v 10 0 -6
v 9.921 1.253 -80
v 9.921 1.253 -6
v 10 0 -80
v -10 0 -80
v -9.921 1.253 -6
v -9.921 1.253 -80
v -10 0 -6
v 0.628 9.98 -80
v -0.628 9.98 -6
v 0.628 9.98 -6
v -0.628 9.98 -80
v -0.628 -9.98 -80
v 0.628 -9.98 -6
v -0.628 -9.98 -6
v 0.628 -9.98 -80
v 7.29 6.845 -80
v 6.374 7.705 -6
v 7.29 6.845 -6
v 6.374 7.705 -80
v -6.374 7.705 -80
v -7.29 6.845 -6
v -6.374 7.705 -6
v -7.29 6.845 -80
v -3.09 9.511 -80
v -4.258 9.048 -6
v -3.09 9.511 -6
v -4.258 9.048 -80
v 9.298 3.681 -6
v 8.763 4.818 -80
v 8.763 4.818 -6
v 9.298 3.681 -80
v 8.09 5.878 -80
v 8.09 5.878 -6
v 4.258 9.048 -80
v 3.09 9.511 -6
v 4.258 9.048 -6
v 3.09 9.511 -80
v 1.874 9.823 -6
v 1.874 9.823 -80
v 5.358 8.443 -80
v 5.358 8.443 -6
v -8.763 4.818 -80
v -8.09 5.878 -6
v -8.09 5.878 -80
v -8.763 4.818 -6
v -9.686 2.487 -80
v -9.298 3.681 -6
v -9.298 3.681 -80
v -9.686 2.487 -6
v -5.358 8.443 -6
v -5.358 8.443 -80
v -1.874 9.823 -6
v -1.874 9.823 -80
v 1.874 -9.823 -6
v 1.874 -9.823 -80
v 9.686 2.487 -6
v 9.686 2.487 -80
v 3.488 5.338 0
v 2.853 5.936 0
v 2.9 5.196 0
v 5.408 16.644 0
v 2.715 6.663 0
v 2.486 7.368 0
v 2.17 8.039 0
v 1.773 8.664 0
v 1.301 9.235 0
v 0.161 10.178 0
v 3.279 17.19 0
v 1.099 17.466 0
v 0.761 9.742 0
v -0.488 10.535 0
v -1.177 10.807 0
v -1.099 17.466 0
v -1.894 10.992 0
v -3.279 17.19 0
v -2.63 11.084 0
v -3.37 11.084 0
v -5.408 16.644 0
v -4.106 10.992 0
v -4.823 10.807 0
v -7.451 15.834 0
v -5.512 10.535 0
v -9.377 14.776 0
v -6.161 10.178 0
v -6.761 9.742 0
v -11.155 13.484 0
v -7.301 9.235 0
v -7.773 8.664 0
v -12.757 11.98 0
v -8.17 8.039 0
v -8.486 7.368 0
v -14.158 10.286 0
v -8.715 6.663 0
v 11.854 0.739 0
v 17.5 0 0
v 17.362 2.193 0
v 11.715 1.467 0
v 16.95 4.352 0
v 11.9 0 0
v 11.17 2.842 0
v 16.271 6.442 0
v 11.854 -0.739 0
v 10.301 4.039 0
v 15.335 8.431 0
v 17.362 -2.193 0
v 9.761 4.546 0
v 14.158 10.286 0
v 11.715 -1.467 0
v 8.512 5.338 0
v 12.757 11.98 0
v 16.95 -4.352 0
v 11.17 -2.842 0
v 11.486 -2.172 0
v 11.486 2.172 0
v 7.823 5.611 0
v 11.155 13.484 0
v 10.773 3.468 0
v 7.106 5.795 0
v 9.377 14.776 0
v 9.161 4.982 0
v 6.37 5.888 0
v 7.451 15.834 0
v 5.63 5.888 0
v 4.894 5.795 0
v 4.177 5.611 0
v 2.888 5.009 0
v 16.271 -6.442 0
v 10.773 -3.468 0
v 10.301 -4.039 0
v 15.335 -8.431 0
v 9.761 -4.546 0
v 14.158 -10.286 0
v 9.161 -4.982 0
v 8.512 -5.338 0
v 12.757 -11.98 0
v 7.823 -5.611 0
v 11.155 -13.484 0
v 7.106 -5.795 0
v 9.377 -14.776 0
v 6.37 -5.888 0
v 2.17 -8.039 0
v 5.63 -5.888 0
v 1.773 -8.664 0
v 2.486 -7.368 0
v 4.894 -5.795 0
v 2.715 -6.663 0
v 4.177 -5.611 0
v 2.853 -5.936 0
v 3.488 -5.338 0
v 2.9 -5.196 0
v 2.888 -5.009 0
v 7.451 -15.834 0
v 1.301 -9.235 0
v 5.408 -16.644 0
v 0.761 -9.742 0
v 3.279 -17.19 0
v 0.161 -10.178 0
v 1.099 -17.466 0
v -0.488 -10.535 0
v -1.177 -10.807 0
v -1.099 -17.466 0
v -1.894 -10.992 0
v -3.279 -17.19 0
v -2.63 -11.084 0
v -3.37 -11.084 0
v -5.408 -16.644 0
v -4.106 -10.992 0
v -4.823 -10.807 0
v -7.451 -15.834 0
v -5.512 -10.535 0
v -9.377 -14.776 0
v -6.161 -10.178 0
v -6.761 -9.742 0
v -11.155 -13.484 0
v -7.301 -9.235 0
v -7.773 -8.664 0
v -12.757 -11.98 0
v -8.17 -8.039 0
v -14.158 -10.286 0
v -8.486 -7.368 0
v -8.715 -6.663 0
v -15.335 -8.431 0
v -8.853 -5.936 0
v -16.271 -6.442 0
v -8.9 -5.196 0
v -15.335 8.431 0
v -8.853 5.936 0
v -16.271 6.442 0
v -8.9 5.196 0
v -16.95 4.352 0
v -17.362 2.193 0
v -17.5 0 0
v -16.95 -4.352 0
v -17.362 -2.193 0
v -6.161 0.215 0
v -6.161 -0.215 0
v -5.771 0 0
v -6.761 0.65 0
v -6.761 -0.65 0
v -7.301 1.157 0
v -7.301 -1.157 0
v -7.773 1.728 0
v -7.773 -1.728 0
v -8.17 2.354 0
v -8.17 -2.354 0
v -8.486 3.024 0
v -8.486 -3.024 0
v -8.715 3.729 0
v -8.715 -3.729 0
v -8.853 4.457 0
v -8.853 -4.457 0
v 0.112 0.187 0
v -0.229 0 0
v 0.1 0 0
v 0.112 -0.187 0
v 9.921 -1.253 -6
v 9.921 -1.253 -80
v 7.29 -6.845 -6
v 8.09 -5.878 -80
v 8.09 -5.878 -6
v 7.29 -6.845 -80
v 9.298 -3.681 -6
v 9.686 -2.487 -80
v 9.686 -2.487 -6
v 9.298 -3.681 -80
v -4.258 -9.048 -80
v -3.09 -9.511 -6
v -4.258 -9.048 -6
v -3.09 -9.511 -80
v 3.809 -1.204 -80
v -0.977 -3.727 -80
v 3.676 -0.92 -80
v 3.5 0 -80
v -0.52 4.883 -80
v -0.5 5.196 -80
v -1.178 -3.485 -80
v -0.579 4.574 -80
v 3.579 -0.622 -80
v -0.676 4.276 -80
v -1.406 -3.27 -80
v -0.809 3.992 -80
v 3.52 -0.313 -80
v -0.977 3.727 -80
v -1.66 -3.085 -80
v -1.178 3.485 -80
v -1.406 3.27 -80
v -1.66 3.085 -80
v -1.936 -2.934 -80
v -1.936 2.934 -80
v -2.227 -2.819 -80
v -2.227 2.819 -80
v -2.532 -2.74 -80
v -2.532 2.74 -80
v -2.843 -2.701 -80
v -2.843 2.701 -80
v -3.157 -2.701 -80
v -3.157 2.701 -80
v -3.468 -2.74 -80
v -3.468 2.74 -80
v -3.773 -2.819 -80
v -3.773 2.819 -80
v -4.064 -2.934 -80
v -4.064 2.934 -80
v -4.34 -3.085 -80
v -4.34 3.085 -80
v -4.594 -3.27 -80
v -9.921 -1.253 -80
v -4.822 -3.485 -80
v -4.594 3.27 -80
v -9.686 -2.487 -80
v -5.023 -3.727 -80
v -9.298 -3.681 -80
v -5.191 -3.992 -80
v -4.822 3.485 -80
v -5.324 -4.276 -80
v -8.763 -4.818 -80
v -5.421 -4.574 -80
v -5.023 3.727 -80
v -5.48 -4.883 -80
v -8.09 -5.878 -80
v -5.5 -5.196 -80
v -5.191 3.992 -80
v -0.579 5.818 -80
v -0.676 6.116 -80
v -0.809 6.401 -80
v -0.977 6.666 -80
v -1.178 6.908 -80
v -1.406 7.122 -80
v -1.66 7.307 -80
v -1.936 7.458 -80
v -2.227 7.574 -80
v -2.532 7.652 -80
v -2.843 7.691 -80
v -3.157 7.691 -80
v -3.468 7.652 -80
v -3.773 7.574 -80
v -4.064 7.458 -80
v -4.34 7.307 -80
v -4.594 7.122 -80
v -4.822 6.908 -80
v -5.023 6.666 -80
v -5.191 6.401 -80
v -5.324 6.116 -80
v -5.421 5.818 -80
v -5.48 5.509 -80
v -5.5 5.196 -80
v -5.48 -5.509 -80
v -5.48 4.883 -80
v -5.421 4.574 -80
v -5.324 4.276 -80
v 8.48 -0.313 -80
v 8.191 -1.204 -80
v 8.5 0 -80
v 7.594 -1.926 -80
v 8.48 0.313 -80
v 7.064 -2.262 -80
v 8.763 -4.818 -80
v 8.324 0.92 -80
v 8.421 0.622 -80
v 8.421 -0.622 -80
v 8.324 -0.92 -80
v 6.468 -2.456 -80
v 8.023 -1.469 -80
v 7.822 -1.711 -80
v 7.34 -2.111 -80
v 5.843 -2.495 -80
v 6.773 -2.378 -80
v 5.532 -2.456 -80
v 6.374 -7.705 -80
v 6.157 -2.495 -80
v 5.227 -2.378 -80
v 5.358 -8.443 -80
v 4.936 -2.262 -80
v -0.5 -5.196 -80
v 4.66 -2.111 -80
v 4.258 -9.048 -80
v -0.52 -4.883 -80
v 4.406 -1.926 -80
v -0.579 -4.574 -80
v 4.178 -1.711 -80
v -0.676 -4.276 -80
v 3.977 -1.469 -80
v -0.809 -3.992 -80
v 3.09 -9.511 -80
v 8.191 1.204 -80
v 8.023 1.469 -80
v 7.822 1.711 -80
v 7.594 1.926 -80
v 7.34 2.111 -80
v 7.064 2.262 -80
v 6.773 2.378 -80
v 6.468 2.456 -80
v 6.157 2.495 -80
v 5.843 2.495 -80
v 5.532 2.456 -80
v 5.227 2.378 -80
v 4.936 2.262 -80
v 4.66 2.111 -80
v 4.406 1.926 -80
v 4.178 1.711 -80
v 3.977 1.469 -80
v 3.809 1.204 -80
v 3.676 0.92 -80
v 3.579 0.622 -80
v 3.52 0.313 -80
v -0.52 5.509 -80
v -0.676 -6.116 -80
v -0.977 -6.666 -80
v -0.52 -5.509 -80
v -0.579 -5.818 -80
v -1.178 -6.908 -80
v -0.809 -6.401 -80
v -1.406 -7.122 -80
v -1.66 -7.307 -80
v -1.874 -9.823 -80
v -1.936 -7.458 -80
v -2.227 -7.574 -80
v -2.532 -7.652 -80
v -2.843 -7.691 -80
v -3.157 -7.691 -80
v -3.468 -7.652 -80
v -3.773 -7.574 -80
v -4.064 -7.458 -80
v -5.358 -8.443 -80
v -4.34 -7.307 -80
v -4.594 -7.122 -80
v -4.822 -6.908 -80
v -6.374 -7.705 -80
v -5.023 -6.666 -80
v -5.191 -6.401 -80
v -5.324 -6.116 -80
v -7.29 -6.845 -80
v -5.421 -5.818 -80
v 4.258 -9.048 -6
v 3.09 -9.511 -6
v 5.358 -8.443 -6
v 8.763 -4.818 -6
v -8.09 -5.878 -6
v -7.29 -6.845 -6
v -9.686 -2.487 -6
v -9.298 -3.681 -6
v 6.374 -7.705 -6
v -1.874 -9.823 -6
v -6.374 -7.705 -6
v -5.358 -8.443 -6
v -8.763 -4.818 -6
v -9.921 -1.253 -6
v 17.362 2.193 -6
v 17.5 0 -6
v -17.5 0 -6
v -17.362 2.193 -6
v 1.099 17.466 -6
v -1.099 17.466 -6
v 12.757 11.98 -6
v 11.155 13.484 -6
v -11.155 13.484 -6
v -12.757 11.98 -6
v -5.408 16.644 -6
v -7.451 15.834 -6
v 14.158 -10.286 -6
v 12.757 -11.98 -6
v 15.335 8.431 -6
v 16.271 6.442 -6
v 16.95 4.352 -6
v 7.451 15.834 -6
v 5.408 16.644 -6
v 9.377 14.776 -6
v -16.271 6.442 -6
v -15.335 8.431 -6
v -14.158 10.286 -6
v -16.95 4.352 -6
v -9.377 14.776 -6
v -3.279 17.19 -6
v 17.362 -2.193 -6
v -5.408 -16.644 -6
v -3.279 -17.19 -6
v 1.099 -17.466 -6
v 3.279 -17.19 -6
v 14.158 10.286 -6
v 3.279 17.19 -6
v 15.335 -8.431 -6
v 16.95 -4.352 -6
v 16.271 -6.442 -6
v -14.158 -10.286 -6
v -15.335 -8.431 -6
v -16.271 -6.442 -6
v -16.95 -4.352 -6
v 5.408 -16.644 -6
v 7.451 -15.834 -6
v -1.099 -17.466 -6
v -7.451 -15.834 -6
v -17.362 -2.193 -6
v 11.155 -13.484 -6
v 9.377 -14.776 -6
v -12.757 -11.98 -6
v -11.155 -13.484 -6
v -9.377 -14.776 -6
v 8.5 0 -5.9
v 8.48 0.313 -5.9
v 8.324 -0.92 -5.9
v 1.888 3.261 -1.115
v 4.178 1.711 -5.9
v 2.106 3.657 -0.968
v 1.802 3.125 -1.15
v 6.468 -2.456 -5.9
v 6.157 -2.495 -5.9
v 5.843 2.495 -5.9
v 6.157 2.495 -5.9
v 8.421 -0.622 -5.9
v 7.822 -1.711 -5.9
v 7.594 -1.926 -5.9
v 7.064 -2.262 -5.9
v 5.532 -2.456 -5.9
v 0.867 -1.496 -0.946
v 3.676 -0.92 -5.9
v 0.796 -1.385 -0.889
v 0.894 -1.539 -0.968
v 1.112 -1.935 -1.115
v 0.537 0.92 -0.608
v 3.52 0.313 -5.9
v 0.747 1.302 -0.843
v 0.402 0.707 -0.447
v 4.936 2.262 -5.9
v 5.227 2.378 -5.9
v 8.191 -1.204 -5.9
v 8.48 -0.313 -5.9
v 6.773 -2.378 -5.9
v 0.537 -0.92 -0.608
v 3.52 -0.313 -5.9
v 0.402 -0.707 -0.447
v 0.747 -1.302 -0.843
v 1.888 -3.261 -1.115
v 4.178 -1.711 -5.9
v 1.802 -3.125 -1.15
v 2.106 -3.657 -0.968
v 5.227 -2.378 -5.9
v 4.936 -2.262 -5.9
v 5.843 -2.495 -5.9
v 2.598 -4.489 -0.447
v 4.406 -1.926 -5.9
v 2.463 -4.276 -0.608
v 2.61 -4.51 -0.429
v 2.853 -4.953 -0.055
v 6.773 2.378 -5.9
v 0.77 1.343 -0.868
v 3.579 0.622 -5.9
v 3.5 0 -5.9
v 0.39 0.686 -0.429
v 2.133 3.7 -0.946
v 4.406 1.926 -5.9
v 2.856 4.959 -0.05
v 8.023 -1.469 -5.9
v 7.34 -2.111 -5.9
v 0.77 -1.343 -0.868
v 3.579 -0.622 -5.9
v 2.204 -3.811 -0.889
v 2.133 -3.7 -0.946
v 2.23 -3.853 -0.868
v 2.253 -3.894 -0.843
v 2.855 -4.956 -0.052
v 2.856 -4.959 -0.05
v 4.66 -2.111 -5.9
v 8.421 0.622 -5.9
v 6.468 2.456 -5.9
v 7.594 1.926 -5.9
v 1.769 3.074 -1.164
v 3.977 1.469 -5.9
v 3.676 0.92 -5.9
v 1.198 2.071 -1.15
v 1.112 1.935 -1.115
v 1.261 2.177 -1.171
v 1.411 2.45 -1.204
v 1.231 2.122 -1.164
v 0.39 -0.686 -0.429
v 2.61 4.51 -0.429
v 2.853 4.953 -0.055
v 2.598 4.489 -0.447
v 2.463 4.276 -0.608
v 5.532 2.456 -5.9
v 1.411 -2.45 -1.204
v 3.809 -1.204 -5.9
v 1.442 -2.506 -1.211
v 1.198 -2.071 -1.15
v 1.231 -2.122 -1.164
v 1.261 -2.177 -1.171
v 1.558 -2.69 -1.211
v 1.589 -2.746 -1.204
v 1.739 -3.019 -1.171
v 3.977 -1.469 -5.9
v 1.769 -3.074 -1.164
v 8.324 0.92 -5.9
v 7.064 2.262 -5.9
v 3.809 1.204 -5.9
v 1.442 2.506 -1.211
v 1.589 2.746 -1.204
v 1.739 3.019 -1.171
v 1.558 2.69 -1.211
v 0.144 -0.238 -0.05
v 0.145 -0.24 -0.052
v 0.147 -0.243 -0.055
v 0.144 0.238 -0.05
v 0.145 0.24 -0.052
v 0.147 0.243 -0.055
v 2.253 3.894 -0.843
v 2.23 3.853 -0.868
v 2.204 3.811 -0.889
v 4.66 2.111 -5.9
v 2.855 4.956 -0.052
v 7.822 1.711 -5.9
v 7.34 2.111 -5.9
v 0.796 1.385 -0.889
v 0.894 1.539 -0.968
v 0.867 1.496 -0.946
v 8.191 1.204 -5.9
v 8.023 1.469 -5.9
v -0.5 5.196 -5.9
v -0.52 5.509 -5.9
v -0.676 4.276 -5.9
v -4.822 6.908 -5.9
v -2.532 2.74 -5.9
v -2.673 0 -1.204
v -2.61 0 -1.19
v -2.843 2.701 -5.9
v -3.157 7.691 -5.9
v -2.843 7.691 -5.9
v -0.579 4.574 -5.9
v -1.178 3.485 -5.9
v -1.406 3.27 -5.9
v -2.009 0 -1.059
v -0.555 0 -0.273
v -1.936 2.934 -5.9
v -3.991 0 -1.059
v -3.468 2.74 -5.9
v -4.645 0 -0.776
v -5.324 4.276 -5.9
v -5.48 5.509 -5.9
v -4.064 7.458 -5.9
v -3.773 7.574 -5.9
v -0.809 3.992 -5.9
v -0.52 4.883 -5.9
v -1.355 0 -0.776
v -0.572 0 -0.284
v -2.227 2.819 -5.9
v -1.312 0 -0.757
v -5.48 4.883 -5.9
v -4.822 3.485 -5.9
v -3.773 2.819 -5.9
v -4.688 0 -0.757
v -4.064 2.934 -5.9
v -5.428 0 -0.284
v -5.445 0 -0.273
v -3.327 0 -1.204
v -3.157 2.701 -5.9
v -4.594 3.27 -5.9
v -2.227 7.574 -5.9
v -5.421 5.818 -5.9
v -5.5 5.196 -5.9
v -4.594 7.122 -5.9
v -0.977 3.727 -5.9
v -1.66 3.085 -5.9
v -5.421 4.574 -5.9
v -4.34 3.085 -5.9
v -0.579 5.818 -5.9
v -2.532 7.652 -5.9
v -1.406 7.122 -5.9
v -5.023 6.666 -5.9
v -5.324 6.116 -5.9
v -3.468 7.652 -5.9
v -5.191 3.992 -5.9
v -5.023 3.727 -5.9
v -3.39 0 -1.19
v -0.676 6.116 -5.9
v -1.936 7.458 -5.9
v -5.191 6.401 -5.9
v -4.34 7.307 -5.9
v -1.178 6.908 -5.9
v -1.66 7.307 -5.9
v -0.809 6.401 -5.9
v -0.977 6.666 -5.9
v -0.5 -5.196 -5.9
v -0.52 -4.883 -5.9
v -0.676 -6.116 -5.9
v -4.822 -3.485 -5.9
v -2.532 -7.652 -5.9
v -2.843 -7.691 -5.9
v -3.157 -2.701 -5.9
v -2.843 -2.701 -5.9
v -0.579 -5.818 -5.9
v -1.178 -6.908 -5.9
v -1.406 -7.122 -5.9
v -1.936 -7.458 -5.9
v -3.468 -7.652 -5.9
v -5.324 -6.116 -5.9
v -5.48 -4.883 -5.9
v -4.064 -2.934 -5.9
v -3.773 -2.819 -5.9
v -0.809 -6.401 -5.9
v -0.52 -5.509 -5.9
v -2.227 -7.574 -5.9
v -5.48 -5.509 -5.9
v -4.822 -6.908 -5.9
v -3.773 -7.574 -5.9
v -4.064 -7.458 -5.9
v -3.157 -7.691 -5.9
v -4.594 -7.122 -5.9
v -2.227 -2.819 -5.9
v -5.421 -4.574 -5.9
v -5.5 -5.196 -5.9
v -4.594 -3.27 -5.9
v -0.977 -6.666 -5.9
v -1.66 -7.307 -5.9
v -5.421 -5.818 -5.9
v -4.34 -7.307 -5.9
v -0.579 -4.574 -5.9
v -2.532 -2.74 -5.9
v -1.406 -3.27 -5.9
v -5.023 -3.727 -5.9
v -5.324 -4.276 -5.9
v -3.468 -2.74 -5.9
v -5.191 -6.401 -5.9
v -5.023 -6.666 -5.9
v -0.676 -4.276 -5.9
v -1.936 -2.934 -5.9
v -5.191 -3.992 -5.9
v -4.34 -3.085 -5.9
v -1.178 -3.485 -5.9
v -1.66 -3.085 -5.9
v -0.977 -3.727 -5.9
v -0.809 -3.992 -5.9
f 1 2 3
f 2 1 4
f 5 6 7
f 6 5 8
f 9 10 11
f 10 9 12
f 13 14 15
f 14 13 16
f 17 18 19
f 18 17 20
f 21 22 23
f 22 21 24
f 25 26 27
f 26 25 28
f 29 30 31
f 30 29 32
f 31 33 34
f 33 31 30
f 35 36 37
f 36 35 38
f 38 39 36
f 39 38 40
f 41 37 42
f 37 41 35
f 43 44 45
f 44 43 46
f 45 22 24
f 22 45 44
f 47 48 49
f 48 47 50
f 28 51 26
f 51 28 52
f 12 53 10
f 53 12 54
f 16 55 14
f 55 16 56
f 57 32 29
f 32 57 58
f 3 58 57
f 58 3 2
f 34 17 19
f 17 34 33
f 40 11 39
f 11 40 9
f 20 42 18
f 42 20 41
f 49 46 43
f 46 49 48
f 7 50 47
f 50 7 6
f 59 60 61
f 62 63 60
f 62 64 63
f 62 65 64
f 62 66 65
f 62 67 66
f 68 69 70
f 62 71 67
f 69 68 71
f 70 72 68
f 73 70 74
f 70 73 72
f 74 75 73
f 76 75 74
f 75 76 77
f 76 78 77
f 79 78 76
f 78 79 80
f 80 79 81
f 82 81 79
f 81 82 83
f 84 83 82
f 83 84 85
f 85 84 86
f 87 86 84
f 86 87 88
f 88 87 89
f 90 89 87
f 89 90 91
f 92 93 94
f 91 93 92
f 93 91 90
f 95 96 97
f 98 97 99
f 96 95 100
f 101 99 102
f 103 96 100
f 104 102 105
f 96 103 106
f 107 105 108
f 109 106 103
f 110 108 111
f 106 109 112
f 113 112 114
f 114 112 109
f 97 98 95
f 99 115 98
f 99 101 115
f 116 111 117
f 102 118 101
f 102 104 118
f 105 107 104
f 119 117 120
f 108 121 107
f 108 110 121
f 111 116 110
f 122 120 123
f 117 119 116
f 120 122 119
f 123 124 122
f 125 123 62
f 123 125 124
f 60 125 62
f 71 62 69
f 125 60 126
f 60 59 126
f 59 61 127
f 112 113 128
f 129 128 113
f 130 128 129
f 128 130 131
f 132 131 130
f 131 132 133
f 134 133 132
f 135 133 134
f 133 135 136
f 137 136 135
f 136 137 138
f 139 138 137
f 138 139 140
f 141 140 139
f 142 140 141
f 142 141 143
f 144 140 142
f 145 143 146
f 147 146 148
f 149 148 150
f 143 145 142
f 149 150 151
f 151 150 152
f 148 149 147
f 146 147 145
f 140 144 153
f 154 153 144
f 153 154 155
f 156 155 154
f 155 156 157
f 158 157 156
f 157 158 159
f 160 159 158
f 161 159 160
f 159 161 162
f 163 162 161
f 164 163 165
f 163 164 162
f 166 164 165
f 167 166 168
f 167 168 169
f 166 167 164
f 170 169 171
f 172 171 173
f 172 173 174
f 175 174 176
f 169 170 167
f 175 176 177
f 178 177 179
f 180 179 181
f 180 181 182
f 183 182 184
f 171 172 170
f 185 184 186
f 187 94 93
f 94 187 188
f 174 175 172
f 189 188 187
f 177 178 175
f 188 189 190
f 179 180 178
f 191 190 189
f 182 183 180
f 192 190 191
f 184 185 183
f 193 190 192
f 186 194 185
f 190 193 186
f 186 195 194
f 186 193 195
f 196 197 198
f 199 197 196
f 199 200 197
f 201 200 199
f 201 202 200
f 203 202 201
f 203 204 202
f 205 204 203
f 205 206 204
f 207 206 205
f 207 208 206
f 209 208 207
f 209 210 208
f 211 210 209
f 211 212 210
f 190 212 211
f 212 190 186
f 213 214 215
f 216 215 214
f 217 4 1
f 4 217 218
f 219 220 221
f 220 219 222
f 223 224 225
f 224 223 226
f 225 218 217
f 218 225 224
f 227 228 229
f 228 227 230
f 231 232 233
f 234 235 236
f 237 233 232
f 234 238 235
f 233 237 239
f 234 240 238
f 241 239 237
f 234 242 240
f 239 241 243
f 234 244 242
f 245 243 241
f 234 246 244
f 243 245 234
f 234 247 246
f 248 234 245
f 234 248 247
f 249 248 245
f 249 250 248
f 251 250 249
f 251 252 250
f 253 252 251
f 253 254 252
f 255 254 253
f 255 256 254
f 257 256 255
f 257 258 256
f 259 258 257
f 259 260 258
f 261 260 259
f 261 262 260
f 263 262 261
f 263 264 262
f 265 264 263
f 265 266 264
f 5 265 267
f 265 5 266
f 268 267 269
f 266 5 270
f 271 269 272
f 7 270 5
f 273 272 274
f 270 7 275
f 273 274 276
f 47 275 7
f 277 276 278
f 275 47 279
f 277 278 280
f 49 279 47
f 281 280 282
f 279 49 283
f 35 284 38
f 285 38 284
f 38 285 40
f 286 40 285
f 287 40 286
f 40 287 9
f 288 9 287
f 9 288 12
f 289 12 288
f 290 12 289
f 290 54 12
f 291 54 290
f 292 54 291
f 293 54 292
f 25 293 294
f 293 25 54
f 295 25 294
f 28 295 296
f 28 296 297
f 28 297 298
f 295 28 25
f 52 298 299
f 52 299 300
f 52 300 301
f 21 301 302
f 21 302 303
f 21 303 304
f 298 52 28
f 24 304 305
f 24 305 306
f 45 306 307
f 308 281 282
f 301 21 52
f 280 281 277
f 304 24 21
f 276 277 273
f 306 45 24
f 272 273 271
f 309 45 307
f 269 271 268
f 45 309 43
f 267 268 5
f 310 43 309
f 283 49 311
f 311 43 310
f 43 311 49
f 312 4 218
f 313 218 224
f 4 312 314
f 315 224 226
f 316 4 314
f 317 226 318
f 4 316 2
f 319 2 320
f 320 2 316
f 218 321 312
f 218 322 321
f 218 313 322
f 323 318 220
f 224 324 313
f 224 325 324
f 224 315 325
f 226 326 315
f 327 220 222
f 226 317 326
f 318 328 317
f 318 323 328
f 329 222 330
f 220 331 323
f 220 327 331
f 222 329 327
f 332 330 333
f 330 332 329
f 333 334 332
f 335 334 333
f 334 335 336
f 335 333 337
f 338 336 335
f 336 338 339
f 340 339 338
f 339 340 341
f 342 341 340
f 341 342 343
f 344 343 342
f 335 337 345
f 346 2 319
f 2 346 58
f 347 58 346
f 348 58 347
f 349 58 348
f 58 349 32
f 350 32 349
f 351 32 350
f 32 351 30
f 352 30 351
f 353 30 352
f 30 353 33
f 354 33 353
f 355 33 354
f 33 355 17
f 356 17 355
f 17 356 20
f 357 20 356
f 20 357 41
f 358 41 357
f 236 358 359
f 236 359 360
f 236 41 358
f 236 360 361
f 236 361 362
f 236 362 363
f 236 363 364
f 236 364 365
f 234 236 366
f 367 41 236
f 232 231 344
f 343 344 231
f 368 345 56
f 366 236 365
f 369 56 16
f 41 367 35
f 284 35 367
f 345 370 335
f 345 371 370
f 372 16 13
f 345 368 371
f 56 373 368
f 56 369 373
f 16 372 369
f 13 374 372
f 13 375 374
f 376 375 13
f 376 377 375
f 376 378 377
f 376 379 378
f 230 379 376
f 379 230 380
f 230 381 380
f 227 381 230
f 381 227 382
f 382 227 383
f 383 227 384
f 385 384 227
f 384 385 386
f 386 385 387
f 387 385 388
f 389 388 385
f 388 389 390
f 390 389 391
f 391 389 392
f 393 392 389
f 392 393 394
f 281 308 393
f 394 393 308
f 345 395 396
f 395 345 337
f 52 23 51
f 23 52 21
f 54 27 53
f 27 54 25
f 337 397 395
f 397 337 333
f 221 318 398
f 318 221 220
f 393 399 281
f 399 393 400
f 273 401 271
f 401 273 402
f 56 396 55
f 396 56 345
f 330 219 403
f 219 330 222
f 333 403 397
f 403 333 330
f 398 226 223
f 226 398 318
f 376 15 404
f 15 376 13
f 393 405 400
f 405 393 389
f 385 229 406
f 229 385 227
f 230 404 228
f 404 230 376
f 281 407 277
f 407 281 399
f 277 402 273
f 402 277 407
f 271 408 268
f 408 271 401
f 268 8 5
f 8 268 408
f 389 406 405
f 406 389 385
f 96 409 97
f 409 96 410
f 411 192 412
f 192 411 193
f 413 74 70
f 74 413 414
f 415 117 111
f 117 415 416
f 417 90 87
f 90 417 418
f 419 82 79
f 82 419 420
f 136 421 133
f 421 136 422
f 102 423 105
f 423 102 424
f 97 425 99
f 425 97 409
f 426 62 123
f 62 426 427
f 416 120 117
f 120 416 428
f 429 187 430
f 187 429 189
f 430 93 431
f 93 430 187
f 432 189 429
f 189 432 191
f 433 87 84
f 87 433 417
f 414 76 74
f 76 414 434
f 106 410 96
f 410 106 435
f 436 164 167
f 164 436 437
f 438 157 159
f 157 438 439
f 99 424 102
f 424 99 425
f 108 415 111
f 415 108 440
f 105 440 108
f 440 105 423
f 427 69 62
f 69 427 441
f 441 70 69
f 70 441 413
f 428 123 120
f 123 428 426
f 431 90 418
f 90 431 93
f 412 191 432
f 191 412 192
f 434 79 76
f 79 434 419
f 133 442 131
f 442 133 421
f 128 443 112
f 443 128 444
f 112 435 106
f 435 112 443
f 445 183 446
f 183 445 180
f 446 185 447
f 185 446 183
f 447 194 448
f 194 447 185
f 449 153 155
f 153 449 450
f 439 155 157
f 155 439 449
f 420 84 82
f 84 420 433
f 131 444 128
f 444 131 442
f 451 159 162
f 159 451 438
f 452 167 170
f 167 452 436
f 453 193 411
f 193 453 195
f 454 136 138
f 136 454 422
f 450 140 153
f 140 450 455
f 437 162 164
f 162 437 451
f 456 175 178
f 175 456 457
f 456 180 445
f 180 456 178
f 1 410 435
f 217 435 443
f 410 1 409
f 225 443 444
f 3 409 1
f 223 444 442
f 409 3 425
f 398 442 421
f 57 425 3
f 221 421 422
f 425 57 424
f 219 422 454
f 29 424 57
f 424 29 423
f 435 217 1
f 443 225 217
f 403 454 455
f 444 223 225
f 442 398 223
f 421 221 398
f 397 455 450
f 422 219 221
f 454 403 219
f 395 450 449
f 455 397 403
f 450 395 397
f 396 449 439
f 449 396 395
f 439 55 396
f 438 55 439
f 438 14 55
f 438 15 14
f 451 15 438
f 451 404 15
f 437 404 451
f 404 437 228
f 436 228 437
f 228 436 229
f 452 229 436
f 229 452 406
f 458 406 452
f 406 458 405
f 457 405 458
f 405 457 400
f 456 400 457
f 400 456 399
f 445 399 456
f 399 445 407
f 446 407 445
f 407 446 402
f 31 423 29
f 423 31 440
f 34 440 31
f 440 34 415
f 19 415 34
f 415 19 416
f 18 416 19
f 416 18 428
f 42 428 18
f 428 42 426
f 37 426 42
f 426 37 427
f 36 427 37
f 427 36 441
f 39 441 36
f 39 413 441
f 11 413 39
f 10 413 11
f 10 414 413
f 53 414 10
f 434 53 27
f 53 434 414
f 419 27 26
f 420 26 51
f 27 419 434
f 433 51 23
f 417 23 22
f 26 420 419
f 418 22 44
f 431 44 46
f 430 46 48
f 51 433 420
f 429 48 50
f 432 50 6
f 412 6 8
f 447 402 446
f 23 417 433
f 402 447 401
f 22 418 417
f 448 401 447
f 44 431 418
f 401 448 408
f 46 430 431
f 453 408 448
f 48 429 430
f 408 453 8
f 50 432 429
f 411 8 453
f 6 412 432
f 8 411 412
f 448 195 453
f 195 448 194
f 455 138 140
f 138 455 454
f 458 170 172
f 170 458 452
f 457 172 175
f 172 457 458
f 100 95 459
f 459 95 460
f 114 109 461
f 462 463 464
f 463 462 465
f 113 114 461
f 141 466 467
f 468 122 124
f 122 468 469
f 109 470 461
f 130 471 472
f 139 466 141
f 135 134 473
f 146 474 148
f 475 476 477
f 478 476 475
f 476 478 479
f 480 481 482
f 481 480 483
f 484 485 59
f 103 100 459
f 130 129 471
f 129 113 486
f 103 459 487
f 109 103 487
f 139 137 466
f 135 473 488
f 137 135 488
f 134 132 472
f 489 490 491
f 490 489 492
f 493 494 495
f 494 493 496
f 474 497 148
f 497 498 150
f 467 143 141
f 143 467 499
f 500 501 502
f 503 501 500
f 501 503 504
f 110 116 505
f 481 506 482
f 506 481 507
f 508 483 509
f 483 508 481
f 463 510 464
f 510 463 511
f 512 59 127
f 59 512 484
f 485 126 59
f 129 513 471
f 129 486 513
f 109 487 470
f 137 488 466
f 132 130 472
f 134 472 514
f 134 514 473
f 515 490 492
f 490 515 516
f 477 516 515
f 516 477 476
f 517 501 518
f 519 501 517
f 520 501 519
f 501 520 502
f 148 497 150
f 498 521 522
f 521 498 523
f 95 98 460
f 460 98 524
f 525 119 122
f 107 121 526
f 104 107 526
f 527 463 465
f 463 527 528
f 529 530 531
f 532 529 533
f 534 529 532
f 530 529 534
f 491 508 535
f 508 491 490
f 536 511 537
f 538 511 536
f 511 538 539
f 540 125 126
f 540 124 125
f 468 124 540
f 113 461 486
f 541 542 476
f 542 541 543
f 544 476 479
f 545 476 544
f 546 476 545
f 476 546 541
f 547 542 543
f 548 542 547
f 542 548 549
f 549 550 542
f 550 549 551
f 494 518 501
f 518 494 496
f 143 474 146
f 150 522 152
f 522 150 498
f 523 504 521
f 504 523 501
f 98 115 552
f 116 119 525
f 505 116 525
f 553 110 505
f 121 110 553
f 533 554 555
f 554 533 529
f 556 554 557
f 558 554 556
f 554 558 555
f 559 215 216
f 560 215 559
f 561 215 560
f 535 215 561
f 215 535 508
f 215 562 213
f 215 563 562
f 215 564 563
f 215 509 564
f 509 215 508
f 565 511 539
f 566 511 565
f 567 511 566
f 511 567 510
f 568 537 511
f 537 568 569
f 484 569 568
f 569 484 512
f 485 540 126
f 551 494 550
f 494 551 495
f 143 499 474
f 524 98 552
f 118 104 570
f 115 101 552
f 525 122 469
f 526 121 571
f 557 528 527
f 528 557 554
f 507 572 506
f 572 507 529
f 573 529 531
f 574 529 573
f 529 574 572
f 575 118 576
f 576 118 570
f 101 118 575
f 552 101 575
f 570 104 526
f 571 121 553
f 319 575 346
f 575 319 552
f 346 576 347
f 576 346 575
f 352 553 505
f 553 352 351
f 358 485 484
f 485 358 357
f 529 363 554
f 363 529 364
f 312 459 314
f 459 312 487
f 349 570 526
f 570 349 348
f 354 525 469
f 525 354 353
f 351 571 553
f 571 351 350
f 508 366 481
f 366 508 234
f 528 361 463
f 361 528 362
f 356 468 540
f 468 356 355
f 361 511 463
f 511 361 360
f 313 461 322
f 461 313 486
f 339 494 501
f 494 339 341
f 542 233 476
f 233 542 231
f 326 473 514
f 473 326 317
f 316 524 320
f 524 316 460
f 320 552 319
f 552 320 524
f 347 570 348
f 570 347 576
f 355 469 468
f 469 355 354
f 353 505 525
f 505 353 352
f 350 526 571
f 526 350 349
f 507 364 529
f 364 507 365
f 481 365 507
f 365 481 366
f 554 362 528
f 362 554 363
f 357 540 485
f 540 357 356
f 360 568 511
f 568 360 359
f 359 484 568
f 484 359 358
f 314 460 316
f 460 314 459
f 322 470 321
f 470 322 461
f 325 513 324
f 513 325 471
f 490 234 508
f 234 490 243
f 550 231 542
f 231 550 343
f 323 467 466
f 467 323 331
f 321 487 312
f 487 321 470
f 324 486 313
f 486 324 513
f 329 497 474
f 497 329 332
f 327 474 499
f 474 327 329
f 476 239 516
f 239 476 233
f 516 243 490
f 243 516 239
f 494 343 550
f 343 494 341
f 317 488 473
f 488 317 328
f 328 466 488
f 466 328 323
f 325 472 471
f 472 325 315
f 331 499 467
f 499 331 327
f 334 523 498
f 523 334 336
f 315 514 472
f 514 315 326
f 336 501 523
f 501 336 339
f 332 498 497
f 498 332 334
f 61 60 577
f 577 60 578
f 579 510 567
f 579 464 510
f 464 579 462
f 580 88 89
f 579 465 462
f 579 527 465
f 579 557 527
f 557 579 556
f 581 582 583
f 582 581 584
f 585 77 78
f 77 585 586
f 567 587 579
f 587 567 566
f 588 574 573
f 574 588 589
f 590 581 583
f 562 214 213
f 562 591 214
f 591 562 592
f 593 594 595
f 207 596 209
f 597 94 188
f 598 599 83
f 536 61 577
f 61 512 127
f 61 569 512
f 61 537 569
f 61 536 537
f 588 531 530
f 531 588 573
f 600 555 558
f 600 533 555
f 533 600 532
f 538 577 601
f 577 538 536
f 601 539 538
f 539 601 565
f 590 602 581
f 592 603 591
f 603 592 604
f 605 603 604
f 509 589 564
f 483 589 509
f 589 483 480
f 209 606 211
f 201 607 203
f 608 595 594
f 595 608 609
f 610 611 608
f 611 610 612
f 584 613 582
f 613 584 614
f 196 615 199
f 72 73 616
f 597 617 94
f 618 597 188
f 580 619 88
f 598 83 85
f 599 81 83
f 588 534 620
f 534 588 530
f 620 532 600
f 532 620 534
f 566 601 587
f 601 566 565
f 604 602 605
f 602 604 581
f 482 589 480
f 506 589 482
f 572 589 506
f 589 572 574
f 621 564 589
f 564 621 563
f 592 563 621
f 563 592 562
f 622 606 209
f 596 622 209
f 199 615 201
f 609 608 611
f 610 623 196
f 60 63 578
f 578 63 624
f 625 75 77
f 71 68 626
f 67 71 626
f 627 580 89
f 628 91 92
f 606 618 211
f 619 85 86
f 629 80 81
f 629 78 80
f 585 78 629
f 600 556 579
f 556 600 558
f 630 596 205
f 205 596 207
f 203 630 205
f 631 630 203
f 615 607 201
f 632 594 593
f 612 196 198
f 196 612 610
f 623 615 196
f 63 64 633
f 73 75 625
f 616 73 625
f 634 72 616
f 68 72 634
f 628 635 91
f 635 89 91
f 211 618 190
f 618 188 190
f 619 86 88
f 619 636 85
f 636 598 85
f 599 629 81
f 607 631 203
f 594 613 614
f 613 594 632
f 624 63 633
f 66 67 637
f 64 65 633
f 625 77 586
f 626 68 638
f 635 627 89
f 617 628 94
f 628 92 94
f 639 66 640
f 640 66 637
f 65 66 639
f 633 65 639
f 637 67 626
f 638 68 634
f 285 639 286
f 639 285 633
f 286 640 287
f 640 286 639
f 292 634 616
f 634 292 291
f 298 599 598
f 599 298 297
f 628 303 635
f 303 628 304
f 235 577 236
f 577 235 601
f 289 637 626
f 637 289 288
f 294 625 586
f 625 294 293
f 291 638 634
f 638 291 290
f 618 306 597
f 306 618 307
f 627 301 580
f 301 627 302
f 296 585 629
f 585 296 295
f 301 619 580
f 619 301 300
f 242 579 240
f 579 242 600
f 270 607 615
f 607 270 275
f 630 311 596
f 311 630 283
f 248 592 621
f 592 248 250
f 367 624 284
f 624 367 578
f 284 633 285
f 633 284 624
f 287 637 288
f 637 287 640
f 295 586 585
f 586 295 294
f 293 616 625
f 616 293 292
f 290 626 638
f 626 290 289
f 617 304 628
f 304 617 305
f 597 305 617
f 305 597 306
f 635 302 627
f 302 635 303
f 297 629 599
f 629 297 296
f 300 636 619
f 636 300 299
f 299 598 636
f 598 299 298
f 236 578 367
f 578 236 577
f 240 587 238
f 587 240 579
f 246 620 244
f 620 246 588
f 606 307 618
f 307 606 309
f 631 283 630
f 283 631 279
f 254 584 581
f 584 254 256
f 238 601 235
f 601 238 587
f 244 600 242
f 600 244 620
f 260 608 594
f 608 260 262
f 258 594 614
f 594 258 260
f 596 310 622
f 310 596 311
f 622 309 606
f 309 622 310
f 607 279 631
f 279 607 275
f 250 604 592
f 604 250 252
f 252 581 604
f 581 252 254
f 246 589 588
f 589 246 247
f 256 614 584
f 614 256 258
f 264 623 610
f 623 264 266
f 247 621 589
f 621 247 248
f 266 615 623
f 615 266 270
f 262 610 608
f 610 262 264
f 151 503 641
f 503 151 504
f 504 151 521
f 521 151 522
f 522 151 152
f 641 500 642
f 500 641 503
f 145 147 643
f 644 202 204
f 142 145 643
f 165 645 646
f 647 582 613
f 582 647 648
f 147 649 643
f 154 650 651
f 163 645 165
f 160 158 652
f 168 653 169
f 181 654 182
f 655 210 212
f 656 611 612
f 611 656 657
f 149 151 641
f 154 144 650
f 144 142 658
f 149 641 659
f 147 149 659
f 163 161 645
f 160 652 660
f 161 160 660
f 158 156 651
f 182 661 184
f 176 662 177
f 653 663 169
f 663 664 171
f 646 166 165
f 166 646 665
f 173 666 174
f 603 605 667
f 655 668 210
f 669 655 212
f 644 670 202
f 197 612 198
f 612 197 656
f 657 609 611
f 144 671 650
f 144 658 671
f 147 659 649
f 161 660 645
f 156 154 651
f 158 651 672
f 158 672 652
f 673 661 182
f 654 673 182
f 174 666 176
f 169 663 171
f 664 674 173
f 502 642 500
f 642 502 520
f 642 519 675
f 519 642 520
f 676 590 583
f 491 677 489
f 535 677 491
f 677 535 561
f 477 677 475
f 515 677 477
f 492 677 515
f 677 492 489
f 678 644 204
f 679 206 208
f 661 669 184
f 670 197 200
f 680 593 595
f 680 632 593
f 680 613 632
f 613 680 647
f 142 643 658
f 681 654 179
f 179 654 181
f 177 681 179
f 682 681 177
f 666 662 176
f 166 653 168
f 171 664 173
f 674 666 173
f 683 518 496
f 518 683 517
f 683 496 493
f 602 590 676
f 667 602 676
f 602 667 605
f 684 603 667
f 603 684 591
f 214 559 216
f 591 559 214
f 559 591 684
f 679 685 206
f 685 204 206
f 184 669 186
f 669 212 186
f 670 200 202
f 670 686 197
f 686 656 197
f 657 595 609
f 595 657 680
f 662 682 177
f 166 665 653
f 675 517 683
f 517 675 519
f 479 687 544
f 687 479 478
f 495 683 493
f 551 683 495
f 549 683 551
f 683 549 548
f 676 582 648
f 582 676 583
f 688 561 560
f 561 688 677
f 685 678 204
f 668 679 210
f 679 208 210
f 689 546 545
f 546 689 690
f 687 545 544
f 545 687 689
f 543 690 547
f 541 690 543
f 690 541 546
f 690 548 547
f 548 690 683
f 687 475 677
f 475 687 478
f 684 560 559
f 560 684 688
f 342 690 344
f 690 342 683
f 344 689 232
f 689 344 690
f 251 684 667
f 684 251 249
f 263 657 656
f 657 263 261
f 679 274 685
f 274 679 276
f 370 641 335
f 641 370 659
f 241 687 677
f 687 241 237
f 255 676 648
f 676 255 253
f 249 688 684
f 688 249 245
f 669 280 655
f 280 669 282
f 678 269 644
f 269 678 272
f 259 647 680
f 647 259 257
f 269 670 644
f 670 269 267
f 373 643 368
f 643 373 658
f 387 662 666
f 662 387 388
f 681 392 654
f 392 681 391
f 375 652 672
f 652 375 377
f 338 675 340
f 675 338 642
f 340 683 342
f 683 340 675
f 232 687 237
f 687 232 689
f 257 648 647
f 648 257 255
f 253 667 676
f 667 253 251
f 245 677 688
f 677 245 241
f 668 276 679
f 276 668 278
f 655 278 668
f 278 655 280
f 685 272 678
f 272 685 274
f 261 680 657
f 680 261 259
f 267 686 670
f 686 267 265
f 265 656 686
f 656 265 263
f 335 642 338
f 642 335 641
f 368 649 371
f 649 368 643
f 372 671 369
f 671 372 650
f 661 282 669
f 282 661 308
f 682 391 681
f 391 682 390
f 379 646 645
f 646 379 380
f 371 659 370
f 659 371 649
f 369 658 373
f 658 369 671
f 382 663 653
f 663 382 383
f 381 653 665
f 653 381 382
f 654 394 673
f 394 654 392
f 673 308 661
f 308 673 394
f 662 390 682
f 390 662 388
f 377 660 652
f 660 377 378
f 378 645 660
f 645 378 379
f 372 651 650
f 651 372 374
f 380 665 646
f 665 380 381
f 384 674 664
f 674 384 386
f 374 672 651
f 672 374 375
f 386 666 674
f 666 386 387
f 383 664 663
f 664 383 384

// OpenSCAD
$fn = 50;


difference() {
	union() {
		translate(v = [0, 0, -80.0000000000]) {
			cylinder(h = 80, r = 10.0000000000);
		}
		translate(v = [0, 0, -6.0000000000]) {
			cylinder(h = 6, r = 17.5000000000);
		}
	}
	union() {
		translate(v = [6.0000000000, 0.0000000000, 0]) {
			rotate(a = [0, 0, 0]) {
				difference() {
					union() {
						#translate(v = [0, 0, -80.0000000000]) {
							cylinder(h = 80, r = 2.2500000000);
						}
						#translate(v = [0, 0, -5.9000000000]) {
							cylinder(h = 5.9000000000, r = 10.0000000000, r1 = 2.5000000000, r2 = 5.9000000000);
						}
						#translate(v = [0, 0, -80.0000000000]) {
							cylinder(h = 80, r = 2.5000000000);
						}
						#translate(v = [0, 0, -80.0000000000]) {
							cylinder(h = 80, r = 2.2500000000);
						}
					}
					union();
				}
			}
		}
		translate(v = [-3.0000000000, 5.1961524227, 0]) {
			rotate(a = [0, 0, 0]) {
				difference() {
					union() {
						#translate(v = [0, 0, -80.0000000000]) {
							cylinder(h = 80, r = 2.2500000000);
						}
						#translate(v = [0, 0, -5.9000000000]) {
							cylinder(h = 5.9000000000, r = 10.0000000000, r1 = 2.5000000000, r2 = 5.9000000000);
						}
						#translate(v = [0, 0, -80.0000000000]) {
							cylinder(h = 80, r = 2.5000000000);
						}
						#translate(v = [0, 0, -80.0000000000]) {
							cylinder(h = 80, r = 2.2500000000);
						}
					}
					union();
				}
			}
		}
		translate(v = [-3.0000000000, -5.1961524227, 0]) {
			rotate(a = [0, 0, 0]) {
				difference() {
					union() {
						#translate(v = [0, 0, -80.0000000000]) {
							cylinder(h = 80, r = 2.2500000000);
						}
						#translate(v = [0, 0, -5.9000000000]) {
							cylinder(h = 5.9000000000, r = 10.0000000000, r1 = 2.5000000000, r2 = 5.9000000000);
						}
						#translate(v = [0, 0, -80.0000000000]) {
							cylinder(h = 80, r = 2.5000000000);
						}
						#translate(v = [0, 0, -80.0000000000]) {
							cylinder(h = 80, r = 2.2500000000);
						}
					}
					union();
				}
			}
		}
	}
}
